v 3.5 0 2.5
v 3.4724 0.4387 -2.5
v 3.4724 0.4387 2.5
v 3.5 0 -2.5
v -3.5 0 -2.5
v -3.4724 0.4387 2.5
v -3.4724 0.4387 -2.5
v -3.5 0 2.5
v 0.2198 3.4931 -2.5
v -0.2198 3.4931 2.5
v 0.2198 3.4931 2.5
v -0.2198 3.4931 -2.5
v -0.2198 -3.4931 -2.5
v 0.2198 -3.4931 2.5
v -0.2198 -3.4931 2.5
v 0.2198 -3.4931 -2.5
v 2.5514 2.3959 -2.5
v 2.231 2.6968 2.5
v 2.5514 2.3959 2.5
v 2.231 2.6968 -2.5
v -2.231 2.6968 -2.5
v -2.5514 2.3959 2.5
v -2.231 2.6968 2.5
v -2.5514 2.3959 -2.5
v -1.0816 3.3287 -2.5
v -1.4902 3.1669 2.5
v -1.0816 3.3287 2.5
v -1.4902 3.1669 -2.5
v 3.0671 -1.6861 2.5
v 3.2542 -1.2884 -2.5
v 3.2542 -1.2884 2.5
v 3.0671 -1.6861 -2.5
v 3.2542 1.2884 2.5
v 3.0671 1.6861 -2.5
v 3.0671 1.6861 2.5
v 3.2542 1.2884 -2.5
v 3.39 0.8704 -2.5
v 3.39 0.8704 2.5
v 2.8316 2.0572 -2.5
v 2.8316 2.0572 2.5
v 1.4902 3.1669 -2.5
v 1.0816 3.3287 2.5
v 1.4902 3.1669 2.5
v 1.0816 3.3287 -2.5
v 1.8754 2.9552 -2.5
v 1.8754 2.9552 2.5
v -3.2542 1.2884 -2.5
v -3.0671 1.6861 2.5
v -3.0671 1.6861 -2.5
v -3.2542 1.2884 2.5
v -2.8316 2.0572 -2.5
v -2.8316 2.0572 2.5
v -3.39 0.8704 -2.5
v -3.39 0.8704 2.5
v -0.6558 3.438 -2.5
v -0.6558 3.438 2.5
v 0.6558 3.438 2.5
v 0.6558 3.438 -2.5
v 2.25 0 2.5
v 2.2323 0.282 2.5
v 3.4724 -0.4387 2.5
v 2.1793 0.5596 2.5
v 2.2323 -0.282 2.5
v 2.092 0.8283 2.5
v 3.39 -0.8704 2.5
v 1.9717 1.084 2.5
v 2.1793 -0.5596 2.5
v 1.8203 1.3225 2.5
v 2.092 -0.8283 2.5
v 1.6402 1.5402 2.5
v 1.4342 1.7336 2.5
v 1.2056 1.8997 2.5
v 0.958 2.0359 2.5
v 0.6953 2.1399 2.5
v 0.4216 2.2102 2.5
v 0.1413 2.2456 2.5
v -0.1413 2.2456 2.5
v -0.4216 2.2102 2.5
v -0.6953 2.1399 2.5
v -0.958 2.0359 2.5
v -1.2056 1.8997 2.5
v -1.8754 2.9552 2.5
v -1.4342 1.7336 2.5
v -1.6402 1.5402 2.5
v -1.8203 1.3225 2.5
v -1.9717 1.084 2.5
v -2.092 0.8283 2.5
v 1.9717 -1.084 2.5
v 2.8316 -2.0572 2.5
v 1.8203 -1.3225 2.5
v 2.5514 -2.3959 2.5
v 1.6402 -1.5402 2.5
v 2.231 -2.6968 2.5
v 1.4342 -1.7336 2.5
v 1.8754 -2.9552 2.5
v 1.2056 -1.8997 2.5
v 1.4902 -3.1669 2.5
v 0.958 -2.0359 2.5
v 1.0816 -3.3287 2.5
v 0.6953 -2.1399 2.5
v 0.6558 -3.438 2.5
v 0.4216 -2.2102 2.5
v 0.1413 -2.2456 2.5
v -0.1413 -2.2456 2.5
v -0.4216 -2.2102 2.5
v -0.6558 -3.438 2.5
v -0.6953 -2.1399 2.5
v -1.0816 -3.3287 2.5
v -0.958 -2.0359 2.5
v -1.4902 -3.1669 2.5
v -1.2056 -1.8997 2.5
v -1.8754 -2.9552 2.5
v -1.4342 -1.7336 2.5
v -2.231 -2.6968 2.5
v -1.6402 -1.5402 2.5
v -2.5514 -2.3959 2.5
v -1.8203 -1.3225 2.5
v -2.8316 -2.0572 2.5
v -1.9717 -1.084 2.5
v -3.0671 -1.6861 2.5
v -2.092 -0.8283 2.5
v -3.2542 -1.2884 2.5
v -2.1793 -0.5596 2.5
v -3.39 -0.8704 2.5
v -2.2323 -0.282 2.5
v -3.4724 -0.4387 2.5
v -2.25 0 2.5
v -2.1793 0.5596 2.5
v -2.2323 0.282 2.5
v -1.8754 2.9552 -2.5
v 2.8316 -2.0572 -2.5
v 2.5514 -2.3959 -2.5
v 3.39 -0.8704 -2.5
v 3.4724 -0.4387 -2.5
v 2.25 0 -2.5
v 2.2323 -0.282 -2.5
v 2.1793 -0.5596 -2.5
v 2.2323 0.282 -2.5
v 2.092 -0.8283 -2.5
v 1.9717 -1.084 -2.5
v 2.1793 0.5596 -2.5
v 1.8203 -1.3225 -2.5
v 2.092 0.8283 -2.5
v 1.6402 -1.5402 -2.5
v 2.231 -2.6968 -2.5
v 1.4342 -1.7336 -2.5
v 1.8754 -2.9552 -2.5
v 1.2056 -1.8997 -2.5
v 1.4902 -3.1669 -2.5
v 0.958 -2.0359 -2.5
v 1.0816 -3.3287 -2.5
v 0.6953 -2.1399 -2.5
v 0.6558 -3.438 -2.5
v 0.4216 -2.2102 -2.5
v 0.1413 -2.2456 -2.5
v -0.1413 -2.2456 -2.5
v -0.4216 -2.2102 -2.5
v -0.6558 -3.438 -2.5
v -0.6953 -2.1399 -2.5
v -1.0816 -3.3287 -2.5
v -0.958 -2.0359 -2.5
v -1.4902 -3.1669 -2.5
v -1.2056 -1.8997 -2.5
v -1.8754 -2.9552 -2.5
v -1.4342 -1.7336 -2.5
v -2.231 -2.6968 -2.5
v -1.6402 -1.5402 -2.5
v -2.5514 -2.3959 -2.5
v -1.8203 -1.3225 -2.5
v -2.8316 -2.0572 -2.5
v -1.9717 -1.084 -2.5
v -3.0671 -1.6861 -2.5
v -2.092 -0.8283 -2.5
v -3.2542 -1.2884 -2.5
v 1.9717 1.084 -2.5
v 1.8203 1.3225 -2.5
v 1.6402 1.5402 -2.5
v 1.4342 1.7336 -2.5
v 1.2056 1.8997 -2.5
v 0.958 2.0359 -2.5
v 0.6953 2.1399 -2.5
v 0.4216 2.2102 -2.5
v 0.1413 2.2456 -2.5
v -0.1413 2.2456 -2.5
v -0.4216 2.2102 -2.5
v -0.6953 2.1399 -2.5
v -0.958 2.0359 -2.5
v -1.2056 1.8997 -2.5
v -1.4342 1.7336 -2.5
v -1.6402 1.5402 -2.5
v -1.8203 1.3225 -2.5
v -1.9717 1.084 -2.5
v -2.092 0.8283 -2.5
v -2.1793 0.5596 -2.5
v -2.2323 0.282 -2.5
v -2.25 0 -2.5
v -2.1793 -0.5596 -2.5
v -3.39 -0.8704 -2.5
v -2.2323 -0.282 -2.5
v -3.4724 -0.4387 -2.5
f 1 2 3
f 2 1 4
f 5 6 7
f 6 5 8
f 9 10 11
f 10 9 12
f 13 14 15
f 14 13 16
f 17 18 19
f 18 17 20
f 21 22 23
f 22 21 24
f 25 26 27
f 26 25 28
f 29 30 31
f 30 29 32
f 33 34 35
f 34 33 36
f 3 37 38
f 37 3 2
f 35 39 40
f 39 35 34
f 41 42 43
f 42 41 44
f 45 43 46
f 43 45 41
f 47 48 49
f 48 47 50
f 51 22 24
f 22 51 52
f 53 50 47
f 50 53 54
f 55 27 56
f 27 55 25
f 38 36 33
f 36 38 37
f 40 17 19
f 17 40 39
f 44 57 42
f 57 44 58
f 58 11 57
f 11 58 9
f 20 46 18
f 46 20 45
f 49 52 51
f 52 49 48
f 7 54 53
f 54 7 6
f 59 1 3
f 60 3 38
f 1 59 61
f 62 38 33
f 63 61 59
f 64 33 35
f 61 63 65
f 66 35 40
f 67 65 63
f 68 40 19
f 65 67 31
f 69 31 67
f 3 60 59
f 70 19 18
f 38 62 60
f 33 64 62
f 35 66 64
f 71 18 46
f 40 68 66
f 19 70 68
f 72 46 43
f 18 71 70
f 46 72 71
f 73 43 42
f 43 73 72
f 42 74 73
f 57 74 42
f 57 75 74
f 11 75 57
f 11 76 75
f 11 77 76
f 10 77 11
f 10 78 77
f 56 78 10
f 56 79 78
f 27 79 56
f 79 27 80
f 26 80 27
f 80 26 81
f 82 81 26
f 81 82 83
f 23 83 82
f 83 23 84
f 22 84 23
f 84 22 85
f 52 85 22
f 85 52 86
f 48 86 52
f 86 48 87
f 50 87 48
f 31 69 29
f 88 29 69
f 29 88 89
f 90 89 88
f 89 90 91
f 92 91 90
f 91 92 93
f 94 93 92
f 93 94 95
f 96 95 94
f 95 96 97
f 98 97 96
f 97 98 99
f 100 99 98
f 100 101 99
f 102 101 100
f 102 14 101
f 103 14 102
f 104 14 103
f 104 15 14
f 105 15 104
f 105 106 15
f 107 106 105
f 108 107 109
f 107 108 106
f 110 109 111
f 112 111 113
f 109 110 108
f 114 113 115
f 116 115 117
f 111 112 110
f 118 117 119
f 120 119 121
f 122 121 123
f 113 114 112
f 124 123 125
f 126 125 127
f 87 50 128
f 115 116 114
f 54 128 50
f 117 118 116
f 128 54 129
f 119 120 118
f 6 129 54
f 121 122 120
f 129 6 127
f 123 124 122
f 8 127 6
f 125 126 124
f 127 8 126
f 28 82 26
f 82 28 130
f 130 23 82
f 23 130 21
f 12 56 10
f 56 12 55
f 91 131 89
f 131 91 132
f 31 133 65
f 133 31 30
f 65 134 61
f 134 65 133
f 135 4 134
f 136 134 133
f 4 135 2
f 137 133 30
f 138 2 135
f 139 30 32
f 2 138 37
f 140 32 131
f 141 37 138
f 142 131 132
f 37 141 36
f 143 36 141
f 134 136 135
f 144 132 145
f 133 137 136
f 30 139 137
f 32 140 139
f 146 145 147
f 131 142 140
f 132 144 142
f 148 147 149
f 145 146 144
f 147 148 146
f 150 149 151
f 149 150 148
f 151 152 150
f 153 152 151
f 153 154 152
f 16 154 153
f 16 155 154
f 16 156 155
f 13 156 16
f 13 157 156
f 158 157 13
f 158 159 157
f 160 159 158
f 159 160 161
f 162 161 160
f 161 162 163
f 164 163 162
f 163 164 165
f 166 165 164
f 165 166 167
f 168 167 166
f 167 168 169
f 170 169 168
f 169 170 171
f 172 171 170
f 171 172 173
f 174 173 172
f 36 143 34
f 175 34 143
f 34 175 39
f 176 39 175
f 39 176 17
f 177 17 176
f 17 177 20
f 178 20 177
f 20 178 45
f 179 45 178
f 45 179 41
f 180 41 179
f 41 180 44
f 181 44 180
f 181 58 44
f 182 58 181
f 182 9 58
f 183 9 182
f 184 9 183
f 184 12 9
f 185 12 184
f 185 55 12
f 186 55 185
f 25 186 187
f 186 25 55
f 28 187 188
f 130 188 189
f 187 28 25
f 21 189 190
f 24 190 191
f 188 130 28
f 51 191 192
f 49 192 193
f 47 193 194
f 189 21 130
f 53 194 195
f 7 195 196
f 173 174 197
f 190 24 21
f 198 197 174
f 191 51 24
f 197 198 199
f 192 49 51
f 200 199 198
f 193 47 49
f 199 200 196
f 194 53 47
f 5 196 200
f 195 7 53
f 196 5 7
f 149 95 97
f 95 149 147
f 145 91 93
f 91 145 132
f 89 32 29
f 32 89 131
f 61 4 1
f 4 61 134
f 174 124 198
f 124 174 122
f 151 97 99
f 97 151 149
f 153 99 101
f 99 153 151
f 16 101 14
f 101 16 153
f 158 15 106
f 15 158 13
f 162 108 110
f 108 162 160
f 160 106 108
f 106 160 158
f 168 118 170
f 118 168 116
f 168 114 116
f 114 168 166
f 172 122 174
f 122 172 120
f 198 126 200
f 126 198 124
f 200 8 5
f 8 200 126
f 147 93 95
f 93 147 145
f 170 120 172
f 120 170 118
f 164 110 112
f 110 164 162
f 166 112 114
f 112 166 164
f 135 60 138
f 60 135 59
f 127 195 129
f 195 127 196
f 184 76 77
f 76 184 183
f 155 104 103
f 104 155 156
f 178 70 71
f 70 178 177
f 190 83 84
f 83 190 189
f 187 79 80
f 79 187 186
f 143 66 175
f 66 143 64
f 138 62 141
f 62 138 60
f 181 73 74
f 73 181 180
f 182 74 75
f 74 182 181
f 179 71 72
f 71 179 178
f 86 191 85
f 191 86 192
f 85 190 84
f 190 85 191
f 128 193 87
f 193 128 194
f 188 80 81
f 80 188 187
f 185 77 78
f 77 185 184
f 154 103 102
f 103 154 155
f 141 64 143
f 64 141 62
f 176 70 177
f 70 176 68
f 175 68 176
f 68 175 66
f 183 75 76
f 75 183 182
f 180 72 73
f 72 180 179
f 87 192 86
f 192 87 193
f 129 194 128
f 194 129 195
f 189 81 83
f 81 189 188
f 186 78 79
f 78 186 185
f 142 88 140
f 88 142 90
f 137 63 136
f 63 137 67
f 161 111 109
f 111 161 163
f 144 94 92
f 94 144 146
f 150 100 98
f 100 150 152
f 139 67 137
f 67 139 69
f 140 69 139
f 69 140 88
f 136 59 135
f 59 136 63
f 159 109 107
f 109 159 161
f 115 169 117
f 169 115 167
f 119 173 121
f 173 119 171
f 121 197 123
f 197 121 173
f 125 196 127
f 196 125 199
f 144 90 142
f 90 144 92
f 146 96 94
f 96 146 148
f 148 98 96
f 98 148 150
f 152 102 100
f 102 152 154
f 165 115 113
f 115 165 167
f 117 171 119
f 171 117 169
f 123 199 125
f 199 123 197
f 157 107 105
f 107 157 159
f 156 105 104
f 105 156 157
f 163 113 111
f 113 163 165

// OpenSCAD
$fn = 50;


difference() {
	union() {
		translate(v = [0, 0, -2.5000000000]) {
			cylinder(h = 5, r = 3.5000000000);
		}
	}
	union() {
		translate(v = [0, 0, -100.0000000000]) {
			cylinder(h = 200, r = 2.2500000000);
		}
	}
}
